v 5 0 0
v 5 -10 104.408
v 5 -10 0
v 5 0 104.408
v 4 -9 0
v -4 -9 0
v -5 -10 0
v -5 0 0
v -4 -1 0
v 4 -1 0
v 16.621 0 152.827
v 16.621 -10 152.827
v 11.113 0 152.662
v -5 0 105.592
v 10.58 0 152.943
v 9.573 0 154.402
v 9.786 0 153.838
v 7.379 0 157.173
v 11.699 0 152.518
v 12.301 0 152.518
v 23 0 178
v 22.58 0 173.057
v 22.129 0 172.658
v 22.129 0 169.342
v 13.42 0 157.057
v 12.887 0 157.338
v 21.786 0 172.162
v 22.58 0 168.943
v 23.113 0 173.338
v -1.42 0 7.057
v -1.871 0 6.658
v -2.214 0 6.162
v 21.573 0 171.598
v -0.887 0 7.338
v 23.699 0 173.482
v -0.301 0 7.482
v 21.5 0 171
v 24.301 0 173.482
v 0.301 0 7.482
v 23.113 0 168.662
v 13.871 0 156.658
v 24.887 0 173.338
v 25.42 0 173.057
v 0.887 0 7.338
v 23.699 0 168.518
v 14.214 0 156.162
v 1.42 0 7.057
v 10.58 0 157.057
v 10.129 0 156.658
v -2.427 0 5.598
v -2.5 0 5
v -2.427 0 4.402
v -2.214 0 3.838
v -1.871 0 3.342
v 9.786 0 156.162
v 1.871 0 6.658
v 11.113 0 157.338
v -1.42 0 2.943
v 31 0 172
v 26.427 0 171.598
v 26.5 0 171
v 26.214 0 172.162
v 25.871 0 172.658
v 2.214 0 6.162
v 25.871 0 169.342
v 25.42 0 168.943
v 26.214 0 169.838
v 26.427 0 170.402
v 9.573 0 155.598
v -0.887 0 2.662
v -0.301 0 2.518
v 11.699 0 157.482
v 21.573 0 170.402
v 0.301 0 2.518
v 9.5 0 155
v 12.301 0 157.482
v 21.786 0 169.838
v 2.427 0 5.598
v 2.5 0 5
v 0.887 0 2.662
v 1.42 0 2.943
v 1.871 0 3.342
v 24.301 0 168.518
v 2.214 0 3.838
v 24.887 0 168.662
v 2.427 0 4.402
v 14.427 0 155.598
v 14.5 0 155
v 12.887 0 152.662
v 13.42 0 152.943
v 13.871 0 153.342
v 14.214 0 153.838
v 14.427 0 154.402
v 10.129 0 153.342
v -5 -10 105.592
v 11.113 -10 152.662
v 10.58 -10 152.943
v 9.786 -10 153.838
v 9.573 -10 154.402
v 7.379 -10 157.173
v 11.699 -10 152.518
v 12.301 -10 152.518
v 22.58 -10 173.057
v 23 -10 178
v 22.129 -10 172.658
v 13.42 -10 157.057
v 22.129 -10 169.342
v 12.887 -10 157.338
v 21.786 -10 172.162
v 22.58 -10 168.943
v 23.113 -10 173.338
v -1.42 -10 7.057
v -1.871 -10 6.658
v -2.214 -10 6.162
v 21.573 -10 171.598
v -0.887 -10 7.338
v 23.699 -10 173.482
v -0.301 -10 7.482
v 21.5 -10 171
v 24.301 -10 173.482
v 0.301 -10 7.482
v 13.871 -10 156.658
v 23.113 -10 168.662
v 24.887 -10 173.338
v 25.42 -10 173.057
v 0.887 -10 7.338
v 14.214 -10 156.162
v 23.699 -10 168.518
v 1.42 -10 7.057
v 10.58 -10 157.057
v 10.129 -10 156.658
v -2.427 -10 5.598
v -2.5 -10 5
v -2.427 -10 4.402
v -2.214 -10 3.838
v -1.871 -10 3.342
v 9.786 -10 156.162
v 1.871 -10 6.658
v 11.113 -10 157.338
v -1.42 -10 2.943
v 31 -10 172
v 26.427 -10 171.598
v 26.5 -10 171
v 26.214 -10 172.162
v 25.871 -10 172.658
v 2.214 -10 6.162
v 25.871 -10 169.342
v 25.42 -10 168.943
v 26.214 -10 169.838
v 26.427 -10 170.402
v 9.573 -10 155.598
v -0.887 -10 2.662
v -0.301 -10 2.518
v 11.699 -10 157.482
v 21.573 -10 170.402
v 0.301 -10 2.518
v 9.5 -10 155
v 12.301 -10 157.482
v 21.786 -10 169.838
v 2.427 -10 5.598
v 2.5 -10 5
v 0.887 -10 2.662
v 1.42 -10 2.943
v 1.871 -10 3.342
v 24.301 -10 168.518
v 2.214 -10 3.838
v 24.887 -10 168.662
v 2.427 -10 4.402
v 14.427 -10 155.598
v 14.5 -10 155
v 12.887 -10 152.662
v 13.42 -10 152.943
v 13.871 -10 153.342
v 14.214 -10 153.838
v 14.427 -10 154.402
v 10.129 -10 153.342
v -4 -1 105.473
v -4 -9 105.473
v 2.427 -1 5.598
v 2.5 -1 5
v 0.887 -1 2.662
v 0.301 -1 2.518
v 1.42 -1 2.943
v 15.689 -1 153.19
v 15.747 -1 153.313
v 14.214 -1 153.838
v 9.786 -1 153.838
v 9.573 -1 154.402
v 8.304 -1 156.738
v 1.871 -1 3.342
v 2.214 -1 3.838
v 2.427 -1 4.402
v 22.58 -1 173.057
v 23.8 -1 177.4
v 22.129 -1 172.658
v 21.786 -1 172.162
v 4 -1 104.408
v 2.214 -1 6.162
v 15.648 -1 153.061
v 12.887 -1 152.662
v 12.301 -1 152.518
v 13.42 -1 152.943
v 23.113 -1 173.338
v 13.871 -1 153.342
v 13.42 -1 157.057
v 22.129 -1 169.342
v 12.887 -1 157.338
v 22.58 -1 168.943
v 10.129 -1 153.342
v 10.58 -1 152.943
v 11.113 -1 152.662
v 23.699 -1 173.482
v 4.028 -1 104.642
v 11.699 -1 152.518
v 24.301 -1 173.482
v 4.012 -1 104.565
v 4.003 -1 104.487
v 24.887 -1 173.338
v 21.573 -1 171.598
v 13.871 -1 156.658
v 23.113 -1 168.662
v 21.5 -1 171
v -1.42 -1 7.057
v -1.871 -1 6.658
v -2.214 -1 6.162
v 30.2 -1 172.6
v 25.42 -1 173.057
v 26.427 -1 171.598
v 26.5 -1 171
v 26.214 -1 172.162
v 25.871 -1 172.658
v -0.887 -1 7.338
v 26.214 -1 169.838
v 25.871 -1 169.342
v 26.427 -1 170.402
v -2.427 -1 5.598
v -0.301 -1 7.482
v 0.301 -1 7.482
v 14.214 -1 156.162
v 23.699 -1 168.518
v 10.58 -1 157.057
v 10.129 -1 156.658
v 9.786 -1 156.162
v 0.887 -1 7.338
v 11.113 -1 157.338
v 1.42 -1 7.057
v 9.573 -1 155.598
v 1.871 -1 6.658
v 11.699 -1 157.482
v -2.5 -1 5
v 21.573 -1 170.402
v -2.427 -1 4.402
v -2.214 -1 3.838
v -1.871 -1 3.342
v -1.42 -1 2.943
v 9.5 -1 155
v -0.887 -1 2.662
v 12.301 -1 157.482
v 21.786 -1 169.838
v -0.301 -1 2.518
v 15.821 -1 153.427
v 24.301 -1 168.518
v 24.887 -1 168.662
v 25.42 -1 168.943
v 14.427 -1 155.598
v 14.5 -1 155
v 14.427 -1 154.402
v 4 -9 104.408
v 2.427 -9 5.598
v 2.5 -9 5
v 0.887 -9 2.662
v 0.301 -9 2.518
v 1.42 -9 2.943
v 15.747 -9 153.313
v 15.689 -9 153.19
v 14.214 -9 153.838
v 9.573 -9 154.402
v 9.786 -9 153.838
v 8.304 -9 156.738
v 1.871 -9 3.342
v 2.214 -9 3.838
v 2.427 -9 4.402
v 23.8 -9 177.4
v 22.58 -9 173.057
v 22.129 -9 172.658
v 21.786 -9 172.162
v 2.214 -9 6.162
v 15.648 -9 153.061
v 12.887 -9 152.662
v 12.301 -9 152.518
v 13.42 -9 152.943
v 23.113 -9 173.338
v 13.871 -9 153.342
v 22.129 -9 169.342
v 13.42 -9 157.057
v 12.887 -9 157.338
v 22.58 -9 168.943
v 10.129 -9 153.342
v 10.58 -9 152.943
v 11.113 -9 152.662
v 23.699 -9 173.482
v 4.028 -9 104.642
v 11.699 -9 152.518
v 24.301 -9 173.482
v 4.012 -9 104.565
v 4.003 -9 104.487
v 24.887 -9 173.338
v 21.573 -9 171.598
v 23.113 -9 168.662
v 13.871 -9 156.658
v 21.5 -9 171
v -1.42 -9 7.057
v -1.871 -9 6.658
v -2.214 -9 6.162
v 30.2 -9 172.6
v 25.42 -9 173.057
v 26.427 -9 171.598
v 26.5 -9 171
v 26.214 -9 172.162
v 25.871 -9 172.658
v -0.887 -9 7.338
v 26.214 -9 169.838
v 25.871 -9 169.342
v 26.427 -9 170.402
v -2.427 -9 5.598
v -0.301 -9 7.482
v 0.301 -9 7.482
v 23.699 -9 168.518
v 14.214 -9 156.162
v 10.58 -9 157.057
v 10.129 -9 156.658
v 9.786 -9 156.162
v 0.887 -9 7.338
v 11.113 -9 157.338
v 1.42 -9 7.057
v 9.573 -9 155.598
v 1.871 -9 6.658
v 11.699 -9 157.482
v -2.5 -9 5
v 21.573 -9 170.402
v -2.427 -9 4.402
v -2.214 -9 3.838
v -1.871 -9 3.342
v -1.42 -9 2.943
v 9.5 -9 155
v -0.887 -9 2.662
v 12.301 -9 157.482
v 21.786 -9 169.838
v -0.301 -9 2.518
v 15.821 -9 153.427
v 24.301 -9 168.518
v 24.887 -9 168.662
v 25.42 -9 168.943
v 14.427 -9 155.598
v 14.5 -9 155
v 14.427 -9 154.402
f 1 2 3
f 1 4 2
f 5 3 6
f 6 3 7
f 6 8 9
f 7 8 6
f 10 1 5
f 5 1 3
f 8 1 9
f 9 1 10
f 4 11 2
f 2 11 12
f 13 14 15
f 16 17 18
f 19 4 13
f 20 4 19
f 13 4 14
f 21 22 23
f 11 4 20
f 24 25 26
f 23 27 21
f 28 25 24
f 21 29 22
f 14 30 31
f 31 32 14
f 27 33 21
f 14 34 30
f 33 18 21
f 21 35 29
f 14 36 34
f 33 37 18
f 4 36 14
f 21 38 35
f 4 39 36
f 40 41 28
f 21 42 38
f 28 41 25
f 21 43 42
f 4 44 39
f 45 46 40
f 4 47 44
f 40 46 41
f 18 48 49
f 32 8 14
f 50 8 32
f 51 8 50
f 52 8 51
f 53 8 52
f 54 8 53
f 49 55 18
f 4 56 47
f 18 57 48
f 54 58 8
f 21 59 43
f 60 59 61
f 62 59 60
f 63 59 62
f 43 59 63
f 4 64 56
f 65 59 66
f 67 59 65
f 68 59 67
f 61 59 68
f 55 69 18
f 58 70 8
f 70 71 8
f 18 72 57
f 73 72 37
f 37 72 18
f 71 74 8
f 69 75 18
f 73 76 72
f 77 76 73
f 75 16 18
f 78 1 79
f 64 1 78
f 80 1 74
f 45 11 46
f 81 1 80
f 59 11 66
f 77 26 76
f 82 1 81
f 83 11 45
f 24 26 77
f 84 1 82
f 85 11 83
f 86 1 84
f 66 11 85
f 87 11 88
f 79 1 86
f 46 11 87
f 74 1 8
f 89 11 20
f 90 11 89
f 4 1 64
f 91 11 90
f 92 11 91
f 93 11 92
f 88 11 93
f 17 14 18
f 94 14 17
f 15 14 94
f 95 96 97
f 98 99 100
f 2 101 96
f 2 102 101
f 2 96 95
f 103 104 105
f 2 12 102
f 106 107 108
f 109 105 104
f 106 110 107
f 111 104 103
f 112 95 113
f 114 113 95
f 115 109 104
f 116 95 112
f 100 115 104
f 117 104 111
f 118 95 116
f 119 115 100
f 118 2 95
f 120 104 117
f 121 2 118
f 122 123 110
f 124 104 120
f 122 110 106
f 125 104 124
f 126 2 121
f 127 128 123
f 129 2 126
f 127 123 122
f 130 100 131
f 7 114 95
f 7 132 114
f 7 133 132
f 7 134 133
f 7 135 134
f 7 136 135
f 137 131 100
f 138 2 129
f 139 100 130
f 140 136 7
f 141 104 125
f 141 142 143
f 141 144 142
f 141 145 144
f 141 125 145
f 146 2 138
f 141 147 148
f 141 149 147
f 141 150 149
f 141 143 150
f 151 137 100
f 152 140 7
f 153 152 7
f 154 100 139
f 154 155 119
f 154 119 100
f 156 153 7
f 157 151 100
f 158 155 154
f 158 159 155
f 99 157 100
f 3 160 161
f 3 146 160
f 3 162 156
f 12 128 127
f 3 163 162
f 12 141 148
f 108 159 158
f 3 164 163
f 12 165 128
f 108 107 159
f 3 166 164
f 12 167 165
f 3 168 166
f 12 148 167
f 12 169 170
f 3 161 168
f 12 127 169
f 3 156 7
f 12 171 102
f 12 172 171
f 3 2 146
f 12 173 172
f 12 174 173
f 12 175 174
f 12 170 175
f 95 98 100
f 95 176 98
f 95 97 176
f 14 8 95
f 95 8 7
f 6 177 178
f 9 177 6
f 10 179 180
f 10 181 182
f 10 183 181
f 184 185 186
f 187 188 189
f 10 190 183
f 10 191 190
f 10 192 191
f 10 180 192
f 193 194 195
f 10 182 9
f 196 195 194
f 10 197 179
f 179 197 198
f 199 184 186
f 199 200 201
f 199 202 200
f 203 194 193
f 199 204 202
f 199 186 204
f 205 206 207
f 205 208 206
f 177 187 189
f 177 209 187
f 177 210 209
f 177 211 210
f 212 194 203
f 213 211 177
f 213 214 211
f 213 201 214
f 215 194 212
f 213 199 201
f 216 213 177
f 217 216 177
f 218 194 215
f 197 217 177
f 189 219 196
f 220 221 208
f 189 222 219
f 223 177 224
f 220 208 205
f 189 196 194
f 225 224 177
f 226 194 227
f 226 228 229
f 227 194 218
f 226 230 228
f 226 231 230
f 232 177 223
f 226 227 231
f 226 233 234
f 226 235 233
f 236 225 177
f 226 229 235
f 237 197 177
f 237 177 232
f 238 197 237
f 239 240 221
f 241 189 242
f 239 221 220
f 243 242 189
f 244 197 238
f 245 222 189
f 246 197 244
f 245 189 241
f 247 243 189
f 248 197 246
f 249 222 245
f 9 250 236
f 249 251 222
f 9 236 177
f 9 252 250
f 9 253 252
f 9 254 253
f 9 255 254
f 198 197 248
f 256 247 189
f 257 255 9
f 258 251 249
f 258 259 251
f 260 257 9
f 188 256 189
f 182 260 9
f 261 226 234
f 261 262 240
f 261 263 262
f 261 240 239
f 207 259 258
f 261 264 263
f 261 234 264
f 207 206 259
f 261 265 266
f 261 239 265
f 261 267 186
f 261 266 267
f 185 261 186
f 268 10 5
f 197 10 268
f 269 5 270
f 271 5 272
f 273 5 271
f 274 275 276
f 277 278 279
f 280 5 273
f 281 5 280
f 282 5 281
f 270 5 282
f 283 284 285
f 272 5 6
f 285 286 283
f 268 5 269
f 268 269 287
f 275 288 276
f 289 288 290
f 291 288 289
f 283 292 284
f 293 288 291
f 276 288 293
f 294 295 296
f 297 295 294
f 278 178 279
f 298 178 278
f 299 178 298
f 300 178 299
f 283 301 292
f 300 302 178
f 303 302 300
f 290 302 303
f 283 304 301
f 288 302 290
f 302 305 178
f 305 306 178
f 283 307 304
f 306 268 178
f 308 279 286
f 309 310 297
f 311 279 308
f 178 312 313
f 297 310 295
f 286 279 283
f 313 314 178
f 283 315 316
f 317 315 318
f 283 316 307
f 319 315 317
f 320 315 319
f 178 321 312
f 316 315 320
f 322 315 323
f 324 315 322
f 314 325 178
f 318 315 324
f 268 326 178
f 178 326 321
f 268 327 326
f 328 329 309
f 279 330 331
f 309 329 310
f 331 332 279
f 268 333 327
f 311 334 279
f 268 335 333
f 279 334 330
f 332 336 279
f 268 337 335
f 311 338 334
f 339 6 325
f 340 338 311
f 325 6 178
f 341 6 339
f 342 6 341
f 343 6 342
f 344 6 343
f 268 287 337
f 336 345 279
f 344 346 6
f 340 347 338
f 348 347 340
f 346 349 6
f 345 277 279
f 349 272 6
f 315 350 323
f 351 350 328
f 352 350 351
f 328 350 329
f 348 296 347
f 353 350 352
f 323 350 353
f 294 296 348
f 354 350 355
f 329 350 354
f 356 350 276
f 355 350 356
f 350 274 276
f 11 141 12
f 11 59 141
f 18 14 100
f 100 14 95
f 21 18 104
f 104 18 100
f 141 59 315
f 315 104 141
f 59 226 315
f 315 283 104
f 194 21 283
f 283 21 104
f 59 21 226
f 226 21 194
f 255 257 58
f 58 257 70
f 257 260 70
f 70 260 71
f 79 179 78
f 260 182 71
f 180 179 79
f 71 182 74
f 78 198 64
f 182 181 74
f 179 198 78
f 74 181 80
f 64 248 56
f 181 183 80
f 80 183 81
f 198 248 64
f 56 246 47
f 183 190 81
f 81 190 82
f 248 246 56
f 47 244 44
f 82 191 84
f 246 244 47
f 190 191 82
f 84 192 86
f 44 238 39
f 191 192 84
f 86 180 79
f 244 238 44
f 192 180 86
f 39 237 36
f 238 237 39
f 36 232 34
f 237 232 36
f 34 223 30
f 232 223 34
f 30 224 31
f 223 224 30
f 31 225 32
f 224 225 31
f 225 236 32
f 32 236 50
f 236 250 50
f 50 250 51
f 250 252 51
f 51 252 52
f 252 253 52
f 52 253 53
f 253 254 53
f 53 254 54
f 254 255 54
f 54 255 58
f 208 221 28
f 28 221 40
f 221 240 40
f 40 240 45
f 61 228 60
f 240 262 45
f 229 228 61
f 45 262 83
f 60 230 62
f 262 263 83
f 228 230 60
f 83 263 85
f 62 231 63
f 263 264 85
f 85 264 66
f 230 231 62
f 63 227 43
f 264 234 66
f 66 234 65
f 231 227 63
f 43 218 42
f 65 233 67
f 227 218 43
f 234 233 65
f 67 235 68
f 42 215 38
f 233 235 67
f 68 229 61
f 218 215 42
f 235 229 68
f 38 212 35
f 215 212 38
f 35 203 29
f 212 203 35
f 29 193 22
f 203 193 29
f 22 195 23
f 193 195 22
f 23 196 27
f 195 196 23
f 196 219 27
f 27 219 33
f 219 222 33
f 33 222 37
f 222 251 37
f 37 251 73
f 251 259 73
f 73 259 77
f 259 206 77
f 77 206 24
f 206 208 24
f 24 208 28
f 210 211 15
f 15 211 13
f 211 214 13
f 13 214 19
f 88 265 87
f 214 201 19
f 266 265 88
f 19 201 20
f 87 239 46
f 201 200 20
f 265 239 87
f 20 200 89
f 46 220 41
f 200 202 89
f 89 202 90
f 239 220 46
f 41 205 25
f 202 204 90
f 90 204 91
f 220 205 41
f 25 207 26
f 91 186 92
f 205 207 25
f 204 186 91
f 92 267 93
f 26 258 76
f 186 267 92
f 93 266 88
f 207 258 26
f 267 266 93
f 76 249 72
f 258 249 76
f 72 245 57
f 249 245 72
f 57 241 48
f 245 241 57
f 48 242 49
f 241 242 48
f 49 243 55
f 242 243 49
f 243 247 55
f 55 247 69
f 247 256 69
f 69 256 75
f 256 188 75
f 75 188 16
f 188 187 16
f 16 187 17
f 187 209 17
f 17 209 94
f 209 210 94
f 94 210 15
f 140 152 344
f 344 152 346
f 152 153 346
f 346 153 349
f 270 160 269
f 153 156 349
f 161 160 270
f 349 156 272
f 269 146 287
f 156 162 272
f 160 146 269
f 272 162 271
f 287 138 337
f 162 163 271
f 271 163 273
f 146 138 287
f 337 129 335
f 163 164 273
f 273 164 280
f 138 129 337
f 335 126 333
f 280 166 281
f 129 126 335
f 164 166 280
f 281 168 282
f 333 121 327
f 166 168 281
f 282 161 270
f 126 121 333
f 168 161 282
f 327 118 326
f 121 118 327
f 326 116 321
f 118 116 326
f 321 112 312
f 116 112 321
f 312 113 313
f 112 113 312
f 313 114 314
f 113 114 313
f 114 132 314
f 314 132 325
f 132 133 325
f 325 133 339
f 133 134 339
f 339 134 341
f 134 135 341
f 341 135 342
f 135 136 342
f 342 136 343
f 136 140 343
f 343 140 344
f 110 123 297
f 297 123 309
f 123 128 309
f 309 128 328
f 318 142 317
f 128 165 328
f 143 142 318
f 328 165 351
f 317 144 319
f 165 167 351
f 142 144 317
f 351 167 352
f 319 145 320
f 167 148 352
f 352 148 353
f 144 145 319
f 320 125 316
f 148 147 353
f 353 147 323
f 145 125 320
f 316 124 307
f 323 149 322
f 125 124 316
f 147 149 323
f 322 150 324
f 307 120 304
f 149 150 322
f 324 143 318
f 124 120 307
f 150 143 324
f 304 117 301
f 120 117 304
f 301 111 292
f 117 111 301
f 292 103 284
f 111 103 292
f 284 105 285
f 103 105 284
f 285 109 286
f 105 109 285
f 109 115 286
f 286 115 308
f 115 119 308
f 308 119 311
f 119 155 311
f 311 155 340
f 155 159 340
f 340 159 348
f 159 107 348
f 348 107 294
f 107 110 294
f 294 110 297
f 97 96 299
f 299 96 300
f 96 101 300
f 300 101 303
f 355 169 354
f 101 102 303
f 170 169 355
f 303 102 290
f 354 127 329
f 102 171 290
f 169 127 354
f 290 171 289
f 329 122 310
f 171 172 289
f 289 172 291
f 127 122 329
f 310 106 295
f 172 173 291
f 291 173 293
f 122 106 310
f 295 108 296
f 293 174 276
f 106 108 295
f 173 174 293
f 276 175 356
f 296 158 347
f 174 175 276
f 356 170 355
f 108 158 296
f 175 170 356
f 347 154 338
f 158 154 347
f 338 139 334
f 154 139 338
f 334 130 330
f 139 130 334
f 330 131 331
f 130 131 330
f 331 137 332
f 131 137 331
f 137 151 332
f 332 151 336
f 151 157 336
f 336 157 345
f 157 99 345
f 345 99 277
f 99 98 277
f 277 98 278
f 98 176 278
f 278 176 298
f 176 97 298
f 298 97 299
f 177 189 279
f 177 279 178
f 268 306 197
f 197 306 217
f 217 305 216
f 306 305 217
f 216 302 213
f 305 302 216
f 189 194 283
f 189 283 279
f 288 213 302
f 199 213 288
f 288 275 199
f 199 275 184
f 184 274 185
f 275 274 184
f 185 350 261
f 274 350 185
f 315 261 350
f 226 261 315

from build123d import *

# Parameters (mm, degrees)
PAD_DEPTH    = 10
THICKNESS_T  = -1
SKETCH001_R  = 2.5
POCKET_DEPTH = 10.001


with BuildPart() as part:
    # Sketch → Pad (new body)
    with BuildSketch(Plane.XZ):
        Polygon((-5, 0), (5, 0), (5, 104.4084), (16.620565, 152.82742), (31, 172), (23, 178), (7.379435, 157.17258), (-5, 105.5916), align=None)
    extrude(amount=PAD_DEPTH)

    # Thickness
    thickness_openings = [part.faces().sort_by_distance(p)[0] for p in [
        (27, -5, 175),
        (0, -5, 0),
    ]]
    offset(amount=THICKNESS_T, openings=thickness_openings)

    # Sketch001 (on Face8 of Thickness) → Pocket (cut, through all)
    with BuildSketch(Plane.XZ.offset(10)):
        with Locations((0, 5)):
            Circle(SKETCH001_R)
        with Locations((12, 155)):
            Circle(SKETCH001_R)
        with Locations((24, 171)):
            Circle(SKETCH001_R)
    extrude(amount=-POCKET_DEPTH, mode=Mode.SUBTRACT)


solid = part.part
